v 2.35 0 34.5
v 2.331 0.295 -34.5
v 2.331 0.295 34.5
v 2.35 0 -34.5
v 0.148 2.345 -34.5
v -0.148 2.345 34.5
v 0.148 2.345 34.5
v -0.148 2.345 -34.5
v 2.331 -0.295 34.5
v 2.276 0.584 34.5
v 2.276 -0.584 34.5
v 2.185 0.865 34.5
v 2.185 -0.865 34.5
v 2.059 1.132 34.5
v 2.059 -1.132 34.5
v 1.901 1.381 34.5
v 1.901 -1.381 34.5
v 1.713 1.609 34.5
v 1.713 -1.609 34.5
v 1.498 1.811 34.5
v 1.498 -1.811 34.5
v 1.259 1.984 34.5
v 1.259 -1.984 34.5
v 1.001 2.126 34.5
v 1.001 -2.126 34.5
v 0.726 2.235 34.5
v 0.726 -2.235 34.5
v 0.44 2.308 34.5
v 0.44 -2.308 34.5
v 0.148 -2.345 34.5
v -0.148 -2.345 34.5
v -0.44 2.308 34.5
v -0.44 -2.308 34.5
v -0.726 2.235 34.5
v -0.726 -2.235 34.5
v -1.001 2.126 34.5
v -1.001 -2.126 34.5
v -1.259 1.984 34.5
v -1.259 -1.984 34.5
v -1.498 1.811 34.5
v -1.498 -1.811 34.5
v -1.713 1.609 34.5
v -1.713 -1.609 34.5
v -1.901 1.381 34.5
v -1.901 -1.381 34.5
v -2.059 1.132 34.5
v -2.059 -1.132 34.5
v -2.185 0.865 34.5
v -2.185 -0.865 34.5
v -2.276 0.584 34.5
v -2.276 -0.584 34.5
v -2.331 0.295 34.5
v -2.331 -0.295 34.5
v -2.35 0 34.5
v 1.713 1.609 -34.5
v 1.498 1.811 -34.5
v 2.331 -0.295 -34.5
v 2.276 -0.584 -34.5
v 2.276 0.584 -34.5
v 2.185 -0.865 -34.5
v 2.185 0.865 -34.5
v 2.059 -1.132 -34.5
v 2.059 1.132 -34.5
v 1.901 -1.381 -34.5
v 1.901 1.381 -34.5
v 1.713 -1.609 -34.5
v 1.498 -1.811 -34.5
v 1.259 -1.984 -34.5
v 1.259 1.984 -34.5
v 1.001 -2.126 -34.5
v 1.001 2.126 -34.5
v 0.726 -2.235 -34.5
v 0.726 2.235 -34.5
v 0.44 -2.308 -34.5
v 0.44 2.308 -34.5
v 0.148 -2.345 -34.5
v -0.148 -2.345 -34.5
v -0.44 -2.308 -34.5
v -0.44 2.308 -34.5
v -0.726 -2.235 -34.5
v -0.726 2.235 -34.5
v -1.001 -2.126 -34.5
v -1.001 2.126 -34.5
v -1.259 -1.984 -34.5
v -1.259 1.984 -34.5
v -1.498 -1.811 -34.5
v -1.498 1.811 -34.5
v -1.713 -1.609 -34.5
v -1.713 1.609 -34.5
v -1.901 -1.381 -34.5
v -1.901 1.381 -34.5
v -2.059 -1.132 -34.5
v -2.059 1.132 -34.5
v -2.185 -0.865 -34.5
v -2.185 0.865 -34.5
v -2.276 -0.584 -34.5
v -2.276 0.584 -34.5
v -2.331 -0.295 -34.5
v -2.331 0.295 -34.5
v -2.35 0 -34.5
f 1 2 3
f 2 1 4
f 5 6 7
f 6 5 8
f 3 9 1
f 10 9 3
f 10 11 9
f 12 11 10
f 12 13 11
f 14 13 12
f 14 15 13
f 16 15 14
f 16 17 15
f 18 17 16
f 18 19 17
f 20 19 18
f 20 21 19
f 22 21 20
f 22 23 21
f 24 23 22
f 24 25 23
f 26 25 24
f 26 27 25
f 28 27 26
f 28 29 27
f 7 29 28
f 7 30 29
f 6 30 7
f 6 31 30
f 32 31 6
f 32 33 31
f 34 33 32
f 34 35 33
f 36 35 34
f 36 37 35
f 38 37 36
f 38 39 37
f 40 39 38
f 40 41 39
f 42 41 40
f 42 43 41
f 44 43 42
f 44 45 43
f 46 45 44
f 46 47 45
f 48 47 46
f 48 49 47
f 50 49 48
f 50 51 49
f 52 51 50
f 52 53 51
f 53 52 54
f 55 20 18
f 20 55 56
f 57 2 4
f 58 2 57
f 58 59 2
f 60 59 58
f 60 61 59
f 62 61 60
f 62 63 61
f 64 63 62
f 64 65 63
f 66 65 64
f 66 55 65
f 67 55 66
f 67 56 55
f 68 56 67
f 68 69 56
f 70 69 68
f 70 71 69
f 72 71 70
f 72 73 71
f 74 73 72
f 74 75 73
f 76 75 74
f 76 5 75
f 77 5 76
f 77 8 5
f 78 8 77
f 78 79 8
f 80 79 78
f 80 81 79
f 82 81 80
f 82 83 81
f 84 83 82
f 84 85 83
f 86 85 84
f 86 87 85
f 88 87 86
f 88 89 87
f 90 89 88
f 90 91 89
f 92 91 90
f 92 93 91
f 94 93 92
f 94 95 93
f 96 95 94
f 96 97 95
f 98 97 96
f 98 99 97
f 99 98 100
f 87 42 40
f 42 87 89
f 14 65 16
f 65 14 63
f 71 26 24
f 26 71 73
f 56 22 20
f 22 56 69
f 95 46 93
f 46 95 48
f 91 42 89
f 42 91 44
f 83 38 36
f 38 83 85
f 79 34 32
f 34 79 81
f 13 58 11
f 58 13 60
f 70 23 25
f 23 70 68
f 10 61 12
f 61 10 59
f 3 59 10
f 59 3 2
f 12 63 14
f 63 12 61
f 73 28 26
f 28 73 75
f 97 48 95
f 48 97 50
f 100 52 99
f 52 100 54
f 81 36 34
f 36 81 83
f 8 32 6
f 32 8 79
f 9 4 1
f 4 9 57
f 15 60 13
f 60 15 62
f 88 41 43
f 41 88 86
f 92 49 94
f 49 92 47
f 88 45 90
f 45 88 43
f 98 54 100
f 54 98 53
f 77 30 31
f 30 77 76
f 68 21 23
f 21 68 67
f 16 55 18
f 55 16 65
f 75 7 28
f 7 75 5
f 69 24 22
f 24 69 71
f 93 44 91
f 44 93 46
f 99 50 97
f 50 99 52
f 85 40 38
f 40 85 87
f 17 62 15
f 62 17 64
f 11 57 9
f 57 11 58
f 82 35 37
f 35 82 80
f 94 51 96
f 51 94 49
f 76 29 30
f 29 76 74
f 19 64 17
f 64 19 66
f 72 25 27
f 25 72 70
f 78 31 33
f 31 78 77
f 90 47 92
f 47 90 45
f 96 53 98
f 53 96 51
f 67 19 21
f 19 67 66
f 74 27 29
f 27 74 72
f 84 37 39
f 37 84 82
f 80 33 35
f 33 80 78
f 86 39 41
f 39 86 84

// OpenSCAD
$fn = 50;


difference() {
	union() {
		translate(v = [0, 0, -34.5000000000]) {
			cylinder(h = 69, r = 2.3500000000);
		}
	}
	union() {
		translate(v = [0, 0, -100.0000000000]) {
			cylinder(h = 200, r = 0);
		}
	}
}
